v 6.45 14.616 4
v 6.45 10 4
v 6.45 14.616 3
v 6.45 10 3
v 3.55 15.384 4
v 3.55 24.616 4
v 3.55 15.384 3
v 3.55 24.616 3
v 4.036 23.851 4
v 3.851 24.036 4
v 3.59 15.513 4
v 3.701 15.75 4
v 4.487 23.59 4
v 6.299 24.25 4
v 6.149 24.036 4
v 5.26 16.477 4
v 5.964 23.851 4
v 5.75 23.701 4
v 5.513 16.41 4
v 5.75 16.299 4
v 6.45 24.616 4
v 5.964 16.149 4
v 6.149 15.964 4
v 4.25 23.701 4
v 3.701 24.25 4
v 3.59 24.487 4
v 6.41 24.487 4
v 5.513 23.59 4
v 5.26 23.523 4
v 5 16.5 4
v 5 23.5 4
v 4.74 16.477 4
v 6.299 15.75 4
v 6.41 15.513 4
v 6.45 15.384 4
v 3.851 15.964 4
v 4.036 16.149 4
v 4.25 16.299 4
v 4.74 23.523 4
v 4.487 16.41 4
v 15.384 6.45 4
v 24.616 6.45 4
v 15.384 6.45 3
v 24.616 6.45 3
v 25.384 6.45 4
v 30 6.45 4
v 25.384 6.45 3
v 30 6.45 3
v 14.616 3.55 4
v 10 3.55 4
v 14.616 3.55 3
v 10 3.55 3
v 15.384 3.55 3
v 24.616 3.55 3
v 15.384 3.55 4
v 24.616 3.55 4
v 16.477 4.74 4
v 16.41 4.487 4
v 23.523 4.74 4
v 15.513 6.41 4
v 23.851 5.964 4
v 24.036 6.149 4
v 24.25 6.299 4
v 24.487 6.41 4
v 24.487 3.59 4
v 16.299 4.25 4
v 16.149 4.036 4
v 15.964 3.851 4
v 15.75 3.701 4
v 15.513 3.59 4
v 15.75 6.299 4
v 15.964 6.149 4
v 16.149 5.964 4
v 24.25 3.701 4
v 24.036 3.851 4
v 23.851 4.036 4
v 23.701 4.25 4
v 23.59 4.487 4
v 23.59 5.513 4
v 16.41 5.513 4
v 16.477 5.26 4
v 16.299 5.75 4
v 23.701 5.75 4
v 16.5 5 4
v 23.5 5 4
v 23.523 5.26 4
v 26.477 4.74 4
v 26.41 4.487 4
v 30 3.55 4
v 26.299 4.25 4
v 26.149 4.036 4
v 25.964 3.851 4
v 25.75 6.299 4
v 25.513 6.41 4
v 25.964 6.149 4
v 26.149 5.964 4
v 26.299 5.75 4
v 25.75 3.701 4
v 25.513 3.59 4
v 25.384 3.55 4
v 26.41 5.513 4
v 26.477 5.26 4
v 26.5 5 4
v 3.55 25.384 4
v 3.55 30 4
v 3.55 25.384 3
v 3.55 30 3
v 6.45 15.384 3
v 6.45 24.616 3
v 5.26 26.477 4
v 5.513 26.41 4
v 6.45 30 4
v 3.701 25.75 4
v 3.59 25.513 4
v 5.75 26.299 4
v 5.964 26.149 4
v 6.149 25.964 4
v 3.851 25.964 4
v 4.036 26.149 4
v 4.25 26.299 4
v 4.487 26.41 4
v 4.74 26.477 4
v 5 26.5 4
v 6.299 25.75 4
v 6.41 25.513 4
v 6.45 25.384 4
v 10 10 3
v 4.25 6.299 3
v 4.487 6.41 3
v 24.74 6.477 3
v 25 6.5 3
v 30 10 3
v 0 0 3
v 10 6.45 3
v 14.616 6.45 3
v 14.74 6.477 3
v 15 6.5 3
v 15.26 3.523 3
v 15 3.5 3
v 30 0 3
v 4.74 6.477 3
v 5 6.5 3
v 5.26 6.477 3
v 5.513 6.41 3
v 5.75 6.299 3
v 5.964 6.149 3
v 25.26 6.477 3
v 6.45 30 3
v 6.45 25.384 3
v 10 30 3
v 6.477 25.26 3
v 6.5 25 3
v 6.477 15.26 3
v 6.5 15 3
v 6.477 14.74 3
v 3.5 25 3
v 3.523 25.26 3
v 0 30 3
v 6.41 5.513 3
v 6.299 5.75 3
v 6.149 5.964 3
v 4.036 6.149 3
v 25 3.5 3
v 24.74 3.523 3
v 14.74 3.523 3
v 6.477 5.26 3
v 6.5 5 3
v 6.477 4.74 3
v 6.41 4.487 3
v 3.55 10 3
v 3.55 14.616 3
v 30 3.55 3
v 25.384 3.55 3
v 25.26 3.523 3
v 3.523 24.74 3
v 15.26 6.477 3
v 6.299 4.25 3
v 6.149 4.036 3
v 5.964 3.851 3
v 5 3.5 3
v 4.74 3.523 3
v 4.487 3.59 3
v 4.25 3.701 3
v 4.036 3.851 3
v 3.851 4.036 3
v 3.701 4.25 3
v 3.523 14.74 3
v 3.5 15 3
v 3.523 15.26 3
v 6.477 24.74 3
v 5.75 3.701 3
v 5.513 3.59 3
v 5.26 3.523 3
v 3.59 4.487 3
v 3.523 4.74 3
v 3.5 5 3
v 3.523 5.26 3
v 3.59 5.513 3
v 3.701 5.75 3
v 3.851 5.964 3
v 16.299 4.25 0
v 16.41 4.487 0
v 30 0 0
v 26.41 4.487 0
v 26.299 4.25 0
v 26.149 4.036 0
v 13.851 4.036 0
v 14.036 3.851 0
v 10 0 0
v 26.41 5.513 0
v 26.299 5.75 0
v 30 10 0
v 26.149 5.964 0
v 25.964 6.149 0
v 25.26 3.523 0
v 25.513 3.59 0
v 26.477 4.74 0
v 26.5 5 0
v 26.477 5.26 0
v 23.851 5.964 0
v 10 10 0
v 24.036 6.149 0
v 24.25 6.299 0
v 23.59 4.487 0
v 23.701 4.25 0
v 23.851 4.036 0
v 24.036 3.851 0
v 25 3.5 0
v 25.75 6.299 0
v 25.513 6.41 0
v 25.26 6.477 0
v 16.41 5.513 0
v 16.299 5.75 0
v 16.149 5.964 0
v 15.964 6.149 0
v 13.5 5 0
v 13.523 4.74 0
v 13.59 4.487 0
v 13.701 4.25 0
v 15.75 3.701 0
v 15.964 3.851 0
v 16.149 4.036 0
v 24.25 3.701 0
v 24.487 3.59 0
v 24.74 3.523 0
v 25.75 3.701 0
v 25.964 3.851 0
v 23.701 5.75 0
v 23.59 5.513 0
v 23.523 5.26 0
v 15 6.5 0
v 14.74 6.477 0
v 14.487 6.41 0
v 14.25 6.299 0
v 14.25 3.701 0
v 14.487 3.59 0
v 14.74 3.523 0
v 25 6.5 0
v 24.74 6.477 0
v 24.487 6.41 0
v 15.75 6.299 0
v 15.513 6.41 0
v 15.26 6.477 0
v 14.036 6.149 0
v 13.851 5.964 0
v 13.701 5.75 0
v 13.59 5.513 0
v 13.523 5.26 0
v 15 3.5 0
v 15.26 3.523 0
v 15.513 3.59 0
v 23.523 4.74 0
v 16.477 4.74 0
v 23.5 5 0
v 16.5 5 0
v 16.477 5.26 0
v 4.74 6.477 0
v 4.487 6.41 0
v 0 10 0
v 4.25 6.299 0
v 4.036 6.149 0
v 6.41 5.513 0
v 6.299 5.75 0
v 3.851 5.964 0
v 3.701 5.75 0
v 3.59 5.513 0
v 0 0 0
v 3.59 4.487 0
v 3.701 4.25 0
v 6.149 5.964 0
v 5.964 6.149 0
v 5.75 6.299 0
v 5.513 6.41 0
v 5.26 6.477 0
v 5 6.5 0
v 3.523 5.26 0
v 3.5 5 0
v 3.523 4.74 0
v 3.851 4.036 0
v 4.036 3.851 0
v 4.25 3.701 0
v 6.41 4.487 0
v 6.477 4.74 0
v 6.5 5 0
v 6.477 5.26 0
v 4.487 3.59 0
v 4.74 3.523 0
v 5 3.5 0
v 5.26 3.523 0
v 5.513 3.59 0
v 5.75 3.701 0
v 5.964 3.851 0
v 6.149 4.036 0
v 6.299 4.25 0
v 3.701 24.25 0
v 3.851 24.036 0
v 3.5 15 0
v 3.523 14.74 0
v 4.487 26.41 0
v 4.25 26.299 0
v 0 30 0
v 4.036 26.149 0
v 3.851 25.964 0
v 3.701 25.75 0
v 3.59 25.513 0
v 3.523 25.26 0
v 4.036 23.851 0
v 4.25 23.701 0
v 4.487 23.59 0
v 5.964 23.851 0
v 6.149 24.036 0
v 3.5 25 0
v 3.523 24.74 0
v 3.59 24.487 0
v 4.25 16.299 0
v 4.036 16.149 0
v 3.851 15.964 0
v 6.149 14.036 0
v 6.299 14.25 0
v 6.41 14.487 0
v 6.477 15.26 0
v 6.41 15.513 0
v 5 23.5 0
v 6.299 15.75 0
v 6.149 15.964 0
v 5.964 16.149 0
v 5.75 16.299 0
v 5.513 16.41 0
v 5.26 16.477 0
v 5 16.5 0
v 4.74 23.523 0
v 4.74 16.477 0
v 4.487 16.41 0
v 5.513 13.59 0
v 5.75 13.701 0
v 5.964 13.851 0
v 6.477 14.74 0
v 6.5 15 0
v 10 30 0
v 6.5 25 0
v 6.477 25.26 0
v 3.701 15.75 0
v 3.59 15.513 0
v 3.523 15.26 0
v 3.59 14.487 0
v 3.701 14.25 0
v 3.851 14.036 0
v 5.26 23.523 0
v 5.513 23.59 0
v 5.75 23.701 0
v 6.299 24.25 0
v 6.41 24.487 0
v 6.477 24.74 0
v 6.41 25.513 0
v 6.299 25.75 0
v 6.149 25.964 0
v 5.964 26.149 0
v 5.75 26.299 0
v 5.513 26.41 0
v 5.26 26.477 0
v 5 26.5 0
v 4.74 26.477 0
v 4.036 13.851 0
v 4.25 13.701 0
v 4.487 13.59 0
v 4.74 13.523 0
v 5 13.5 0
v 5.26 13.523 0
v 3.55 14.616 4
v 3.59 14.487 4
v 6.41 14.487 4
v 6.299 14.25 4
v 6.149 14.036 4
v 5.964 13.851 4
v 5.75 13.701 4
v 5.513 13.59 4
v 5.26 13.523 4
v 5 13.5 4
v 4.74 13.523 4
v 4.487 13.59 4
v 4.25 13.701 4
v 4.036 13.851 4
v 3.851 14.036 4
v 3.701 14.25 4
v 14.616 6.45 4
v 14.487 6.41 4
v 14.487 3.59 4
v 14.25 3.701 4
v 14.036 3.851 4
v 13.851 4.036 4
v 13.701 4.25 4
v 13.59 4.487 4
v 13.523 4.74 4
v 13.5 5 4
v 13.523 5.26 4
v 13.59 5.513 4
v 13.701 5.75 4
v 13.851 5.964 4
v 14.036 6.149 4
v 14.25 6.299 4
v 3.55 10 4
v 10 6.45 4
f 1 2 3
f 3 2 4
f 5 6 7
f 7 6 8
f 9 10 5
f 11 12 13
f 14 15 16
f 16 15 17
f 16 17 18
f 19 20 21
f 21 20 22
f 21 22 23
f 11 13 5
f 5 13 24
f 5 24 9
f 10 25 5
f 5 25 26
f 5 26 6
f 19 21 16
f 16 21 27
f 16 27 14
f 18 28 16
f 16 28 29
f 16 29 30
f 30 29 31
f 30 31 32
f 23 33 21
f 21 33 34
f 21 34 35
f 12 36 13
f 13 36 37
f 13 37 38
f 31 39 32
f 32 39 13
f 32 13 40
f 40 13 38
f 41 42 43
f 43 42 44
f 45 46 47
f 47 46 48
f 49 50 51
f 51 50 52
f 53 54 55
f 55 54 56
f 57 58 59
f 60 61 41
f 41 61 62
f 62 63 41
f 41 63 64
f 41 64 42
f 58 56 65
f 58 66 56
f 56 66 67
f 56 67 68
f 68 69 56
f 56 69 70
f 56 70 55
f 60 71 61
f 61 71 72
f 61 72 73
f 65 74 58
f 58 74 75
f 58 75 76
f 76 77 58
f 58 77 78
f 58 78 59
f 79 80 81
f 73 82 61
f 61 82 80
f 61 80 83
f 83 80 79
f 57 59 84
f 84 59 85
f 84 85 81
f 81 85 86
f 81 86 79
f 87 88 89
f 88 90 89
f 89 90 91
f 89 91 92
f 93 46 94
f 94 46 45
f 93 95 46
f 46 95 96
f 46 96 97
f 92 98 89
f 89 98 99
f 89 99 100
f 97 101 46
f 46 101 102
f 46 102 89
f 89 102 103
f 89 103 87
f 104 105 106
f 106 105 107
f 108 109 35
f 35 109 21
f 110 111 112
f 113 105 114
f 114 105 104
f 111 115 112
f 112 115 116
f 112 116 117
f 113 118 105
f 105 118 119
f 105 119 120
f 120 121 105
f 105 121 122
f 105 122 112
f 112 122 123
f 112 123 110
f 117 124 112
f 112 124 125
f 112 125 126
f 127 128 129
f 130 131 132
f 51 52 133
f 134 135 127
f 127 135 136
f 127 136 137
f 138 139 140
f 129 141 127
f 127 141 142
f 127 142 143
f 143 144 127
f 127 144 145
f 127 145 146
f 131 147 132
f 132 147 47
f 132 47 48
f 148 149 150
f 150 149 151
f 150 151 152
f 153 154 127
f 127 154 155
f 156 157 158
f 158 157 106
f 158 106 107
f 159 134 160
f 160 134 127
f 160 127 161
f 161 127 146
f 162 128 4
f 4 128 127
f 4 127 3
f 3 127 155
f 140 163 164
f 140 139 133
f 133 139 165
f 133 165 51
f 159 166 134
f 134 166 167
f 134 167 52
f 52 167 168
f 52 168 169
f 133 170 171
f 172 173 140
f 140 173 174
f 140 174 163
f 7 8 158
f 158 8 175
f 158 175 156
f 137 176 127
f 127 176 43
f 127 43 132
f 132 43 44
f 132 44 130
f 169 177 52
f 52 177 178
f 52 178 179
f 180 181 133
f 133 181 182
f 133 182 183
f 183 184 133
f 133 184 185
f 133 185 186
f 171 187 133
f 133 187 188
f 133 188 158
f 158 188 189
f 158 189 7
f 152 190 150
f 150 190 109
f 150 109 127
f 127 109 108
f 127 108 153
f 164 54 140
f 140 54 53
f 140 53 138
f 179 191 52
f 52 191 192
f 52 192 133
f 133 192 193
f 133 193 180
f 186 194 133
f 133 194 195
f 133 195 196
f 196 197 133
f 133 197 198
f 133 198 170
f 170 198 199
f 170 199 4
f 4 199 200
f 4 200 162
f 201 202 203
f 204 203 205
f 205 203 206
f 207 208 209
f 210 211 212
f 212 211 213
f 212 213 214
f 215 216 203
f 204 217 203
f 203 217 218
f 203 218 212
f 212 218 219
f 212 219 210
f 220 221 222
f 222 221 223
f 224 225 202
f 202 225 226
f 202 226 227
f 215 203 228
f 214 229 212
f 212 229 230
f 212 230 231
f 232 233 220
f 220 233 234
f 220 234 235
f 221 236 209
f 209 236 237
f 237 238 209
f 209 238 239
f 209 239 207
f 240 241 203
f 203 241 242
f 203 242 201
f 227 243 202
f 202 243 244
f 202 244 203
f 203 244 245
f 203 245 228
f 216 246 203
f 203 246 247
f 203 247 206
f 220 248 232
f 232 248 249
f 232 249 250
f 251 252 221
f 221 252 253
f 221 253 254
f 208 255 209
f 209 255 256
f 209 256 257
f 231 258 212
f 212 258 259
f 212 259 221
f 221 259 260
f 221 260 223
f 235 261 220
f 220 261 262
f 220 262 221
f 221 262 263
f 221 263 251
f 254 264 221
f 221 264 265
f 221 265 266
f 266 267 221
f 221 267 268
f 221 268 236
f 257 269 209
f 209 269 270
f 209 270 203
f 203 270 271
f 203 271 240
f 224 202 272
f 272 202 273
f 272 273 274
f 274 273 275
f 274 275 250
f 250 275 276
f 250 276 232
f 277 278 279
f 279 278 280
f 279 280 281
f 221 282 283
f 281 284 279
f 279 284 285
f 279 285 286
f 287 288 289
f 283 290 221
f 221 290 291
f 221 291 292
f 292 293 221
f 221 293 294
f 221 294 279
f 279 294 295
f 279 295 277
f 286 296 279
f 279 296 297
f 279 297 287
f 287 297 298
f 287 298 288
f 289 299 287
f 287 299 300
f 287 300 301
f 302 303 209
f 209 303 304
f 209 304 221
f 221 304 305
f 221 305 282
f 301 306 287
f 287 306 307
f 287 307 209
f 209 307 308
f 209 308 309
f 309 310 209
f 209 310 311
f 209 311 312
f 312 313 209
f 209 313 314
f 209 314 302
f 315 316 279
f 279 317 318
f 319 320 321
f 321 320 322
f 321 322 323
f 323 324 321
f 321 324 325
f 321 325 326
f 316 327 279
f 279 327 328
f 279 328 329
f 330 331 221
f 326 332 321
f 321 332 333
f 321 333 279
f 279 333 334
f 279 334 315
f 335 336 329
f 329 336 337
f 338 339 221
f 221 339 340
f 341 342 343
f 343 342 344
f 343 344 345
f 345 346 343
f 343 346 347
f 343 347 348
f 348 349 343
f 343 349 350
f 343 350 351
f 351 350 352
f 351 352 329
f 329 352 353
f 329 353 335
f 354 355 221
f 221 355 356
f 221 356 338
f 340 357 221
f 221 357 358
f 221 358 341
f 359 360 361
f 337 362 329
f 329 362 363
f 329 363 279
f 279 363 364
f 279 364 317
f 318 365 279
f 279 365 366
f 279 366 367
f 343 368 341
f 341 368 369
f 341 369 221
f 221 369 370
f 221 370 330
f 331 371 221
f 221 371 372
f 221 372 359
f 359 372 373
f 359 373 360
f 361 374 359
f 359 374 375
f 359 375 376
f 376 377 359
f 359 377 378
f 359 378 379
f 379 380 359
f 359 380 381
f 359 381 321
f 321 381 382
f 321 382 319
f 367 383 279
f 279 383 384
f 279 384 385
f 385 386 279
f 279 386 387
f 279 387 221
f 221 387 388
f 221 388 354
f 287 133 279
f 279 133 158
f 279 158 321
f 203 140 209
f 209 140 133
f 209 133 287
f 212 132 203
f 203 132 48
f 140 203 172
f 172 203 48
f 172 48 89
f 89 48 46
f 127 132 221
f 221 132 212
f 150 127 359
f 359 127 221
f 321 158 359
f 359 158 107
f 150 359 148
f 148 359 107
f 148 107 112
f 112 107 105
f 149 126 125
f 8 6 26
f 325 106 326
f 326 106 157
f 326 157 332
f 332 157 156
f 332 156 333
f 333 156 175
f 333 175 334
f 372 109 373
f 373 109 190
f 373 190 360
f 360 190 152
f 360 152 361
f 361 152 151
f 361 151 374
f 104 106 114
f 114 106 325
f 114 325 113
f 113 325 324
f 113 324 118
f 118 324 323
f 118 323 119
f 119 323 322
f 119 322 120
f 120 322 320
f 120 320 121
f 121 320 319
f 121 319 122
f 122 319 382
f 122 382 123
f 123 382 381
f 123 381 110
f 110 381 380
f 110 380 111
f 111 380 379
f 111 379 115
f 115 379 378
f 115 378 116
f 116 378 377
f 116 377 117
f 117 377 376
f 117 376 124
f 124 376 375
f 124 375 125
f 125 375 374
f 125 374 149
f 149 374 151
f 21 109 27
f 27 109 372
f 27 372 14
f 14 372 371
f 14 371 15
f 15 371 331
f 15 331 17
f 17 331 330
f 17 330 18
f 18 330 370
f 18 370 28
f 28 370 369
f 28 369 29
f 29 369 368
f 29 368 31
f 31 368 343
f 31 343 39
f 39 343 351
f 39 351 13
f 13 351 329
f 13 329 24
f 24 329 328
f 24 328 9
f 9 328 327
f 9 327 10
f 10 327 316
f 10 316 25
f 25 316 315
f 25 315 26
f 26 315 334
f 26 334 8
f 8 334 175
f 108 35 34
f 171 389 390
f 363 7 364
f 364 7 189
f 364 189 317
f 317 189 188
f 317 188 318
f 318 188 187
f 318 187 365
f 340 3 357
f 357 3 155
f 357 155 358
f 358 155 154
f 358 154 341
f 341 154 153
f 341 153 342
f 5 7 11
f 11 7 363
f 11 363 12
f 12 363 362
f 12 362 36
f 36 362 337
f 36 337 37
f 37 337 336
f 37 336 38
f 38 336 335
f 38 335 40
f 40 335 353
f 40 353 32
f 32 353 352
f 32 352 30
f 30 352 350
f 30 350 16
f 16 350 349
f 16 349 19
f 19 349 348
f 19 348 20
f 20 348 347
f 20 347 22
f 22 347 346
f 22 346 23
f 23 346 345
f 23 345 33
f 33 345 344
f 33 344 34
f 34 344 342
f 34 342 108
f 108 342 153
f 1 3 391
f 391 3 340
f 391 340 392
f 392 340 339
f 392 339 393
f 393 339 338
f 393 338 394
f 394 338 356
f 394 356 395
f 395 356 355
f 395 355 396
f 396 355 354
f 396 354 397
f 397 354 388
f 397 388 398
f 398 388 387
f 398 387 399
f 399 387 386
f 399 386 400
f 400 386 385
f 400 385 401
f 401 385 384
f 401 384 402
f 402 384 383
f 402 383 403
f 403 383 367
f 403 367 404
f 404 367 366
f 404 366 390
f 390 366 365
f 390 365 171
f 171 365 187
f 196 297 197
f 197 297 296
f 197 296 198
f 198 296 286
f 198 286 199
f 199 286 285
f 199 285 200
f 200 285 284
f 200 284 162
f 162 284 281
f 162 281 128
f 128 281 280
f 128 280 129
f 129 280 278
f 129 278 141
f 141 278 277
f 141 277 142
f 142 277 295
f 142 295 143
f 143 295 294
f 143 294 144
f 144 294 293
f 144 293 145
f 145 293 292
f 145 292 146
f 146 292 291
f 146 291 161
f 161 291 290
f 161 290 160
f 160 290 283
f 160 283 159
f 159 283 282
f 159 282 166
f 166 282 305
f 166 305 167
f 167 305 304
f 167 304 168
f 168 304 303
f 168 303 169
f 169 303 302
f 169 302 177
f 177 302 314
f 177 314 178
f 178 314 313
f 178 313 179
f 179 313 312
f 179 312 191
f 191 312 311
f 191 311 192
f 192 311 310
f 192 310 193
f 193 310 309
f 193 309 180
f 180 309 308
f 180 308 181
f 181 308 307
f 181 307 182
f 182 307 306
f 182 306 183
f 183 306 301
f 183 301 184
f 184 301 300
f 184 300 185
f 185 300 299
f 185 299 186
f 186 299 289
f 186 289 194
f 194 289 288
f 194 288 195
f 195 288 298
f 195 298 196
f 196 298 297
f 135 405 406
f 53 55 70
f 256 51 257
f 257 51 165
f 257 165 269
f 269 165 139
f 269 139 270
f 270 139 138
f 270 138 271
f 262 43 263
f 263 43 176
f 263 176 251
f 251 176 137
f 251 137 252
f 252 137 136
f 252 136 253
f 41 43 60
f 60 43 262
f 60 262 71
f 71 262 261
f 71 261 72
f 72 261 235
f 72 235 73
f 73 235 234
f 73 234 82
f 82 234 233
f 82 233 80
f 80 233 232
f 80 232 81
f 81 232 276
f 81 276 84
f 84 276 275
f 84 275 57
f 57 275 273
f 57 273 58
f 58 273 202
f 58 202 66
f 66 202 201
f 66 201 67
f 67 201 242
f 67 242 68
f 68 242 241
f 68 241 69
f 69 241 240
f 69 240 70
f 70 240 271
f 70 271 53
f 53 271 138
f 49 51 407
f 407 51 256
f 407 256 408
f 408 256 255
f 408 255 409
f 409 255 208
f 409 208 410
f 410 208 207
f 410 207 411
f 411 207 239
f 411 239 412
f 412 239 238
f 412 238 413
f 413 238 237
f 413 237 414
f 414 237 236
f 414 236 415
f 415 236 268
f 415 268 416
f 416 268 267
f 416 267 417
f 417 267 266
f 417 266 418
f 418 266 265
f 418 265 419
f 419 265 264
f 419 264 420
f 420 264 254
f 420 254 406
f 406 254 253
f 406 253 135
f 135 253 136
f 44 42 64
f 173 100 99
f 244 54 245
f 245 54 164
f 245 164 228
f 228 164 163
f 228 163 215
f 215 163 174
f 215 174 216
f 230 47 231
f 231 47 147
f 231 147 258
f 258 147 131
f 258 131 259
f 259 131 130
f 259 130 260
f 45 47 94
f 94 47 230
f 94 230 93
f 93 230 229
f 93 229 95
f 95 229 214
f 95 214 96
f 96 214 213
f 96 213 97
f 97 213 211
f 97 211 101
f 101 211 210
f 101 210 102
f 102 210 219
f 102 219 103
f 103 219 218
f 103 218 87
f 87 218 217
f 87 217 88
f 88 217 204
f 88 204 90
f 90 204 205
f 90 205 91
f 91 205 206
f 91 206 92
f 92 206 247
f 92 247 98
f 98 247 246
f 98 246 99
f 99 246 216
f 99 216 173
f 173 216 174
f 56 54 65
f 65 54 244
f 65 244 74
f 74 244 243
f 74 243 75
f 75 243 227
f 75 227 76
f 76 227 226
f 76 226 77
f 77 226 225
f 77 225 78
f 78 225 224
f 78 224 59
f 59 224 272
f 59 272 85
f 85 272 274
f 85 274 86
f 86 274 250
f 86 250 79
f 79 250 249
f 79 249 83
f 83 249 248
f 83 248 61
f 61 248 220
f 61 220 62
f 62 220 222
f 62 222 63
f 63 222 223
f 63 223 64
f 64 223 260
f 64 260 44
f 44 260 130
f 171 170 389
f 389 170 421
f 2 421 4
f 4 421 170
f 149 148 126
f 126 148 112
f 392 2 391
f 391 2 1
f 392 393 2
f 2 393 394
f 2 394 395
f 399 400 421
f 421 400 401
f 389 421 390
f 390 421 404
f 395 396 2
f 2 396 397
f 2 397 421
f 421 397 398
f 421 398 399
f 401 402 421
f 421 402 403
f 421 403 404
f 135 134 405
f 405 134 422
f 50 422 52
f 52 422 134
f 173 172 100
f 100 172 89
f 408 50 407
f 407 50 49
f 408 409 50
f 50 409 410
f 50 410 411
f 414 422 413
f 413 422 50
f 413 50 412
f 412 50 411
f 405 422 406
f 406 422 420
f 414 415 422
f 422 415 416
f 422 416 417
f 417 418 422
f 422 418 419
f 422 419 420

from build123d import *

# Parameters (mm, degrees)
ESQUISSE1_R             = 1.5
BOSS_EXTRU_1_DEPTH      = 3
ESQUISSE2_W             = 2.9
ESQUISSE2_H             = 20
ESQUISSE2_W_2           = 20
ESQUISSE2_H_2           = 2.9
BOSS_EXTRU_2_DEPTH      = 1
ESQUISSE3_R             = 1.5
ENL_V_MAT_EXTRU_1_DEPTH = 5


with BuildPart() as part:
    # Esquisse1 → Boss.-Extru.1 (new body)
    with BuildSketch(Plane.XY):
        Polygon((0, 0), (30, 0), (30, 10), (10, 10), (10, 30), (0, 30), align=None)
        with Locations((5, 25)):
            Circle(ESQUISSE1_R, mode=Mode.SUBTRACT)
        with Locations((5, 15)):
            Circle(ESQUISSE1_R, mode=Mode.SUBTRACT)
        with Locations((5, 5)):
            Circle(ESQUISSE1_R, mode=Mode.SUBTRACT)
        with Locations((15, 5)):
            Circle(ESQUISSE1_R, mode=Mode.SUBTRACT)
        with Locations((25, 5)):
            Circle(ESQUISSE1_R, mode=Mode.SUBTRACT)
    extrude(amount=BOSS_EXTRU_1_DEPTH)

    # Esquisse2 → Boss.-Extru.2 (add)
    with BuildSketch(Plane.XY.offset(3)):
        with Locations((5, 20)):
            Rectangle(ESQUISSE2_W, ESQUISSE2_H)
        with Locations((20, 5)):
            Rectangle(ESQUISSE2_W_2, ESQUISSE2_H_2)
    extrude(amount=BOSS_EXTRU_2_DEPTH)

    # Esquisse3 → Enlèv. mat.-Extru.1 (cut, through all)
    with BuildSketch(Plane.XY.offset(4)):
        with Locations((5, 25)):
            Circle(ESQUISSE3_R)
        with Locations((5, 15)):
            Circle(ESQUISSE3_R)
        with Locations((15, 5)):
            Circle(ESQUISSE3_R)
        with Locations((25, 5)):
            Circle(ESQUISSE3_R)
    extrude(amount=-ENL_V_MAT_EXTRU_1_DEPTH, mode=Mode.SUBTRACT)


solid = part.part
